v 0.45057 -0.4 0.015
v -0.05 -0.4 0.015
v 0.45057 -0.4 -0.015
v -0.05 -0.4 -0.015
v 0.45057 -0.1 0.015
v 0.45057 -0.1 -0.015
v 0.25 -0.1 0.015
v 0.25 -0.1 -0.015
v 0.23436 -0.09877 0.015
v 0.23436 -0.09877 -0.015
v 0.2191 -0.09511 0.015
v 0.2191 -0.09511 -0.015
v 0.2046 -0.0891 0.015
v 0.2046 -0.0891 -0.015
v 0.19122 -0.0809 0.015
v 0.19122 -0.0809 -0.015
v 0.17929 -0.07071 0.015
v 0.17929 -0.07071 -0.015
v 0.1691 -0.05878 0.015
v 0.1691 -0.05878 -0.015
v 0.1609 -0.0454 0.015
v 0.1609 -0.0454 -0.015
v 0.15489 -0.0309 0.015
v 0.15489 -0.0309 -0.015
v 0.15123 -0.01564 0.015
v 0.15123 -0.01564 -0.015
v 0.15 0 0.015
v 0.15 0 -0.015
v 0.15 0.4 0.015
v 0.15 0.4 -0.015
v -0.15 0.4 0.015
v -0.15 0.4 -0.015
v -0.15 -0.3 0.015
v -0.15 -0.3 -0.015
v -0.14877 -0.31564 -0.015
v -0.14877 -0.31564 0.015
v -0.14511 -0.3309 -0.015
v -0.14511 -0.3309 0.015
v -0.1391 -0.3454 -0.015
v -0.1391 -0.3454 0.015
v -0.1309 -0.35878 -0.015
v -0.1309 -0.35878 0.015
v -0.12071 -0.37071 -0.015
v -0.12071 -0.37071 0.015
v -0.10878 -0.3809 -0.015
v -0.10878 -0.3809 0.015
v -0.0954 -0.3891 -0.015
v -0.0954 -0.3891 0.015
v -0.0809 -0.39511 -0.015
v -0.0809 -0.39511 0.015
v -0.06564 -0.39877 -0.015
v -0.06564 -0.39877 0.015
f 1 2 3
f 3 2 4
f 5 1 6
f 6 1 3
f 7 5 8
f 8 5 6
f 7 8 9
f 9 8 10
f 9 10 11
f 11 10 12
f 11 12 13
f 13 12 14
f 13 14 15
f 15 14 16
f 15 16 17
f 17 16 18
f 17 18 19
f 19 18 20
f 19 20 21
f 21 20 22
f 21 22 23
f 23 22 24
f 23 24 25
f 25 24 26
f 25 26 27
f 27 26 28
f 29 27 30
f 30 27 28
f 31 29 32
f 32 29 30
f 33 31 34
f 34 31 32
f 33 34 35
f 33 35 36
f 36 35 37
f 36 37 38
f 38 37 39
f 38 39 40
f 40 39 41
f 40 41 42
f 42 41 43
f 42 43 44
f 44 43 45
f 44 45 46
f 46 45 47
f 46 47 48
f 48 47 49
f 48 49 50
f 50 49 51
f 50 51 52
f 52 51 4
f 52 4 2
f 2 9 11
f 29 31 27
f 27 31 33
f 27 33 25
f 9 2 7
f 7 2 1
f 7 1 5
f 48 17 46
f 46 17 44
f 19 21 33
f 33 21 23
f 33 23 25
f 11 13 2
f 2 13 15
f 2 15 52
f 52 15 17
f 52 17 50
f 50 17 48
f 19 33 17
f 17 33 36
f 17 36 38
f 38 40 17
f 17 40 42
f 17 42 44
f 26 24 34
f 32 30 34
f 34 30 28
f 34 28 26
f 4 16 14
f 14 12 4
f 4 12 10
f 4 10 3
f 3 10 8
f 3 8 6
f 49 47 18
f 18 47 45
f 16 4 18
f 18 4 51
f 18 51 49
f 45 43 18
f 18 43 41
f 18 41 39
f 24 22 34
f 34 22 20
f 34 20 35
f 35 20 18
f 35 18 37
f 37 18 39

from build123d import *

# Parameters (mm, degrees)
BOSS_EXTRUDE2_DEPTH = 0.015


with BuildPart() as part:
    # Sketch3 → Boss-Extrude2 (new, symmetric)
    with BuildSketch(Plane.XY):
        with BuildLine():
            Line((0.15, 0.4), (0.15, 0))
            ThreePointArc((0.15, 0), (0.179289322, -0.070710678), (0.25, -0.1))
            Line((0.25, -0.1), (0.450569691, -0.1))
            Line((0.450569691, -0.1), (0.450569691, -0.4))
            Line((0.450569691, -0.4), (0.15, -0.4))
            Line((0.15, -0.4), (-0.05, -0.4))
            ThreePointArc((-0.05, -0.4), (-0.120710678, -0.370710678), (-0.15, -0.3))
            Line((-0.15, -0.3), (-0.15, 0.4))
            Line((-0.15, 0.4), (0.15, 0.4))
        make_face()
    extrude(amount=BOSS_EXTRUDE2_DEPTH, both=True)


solid = part.part
